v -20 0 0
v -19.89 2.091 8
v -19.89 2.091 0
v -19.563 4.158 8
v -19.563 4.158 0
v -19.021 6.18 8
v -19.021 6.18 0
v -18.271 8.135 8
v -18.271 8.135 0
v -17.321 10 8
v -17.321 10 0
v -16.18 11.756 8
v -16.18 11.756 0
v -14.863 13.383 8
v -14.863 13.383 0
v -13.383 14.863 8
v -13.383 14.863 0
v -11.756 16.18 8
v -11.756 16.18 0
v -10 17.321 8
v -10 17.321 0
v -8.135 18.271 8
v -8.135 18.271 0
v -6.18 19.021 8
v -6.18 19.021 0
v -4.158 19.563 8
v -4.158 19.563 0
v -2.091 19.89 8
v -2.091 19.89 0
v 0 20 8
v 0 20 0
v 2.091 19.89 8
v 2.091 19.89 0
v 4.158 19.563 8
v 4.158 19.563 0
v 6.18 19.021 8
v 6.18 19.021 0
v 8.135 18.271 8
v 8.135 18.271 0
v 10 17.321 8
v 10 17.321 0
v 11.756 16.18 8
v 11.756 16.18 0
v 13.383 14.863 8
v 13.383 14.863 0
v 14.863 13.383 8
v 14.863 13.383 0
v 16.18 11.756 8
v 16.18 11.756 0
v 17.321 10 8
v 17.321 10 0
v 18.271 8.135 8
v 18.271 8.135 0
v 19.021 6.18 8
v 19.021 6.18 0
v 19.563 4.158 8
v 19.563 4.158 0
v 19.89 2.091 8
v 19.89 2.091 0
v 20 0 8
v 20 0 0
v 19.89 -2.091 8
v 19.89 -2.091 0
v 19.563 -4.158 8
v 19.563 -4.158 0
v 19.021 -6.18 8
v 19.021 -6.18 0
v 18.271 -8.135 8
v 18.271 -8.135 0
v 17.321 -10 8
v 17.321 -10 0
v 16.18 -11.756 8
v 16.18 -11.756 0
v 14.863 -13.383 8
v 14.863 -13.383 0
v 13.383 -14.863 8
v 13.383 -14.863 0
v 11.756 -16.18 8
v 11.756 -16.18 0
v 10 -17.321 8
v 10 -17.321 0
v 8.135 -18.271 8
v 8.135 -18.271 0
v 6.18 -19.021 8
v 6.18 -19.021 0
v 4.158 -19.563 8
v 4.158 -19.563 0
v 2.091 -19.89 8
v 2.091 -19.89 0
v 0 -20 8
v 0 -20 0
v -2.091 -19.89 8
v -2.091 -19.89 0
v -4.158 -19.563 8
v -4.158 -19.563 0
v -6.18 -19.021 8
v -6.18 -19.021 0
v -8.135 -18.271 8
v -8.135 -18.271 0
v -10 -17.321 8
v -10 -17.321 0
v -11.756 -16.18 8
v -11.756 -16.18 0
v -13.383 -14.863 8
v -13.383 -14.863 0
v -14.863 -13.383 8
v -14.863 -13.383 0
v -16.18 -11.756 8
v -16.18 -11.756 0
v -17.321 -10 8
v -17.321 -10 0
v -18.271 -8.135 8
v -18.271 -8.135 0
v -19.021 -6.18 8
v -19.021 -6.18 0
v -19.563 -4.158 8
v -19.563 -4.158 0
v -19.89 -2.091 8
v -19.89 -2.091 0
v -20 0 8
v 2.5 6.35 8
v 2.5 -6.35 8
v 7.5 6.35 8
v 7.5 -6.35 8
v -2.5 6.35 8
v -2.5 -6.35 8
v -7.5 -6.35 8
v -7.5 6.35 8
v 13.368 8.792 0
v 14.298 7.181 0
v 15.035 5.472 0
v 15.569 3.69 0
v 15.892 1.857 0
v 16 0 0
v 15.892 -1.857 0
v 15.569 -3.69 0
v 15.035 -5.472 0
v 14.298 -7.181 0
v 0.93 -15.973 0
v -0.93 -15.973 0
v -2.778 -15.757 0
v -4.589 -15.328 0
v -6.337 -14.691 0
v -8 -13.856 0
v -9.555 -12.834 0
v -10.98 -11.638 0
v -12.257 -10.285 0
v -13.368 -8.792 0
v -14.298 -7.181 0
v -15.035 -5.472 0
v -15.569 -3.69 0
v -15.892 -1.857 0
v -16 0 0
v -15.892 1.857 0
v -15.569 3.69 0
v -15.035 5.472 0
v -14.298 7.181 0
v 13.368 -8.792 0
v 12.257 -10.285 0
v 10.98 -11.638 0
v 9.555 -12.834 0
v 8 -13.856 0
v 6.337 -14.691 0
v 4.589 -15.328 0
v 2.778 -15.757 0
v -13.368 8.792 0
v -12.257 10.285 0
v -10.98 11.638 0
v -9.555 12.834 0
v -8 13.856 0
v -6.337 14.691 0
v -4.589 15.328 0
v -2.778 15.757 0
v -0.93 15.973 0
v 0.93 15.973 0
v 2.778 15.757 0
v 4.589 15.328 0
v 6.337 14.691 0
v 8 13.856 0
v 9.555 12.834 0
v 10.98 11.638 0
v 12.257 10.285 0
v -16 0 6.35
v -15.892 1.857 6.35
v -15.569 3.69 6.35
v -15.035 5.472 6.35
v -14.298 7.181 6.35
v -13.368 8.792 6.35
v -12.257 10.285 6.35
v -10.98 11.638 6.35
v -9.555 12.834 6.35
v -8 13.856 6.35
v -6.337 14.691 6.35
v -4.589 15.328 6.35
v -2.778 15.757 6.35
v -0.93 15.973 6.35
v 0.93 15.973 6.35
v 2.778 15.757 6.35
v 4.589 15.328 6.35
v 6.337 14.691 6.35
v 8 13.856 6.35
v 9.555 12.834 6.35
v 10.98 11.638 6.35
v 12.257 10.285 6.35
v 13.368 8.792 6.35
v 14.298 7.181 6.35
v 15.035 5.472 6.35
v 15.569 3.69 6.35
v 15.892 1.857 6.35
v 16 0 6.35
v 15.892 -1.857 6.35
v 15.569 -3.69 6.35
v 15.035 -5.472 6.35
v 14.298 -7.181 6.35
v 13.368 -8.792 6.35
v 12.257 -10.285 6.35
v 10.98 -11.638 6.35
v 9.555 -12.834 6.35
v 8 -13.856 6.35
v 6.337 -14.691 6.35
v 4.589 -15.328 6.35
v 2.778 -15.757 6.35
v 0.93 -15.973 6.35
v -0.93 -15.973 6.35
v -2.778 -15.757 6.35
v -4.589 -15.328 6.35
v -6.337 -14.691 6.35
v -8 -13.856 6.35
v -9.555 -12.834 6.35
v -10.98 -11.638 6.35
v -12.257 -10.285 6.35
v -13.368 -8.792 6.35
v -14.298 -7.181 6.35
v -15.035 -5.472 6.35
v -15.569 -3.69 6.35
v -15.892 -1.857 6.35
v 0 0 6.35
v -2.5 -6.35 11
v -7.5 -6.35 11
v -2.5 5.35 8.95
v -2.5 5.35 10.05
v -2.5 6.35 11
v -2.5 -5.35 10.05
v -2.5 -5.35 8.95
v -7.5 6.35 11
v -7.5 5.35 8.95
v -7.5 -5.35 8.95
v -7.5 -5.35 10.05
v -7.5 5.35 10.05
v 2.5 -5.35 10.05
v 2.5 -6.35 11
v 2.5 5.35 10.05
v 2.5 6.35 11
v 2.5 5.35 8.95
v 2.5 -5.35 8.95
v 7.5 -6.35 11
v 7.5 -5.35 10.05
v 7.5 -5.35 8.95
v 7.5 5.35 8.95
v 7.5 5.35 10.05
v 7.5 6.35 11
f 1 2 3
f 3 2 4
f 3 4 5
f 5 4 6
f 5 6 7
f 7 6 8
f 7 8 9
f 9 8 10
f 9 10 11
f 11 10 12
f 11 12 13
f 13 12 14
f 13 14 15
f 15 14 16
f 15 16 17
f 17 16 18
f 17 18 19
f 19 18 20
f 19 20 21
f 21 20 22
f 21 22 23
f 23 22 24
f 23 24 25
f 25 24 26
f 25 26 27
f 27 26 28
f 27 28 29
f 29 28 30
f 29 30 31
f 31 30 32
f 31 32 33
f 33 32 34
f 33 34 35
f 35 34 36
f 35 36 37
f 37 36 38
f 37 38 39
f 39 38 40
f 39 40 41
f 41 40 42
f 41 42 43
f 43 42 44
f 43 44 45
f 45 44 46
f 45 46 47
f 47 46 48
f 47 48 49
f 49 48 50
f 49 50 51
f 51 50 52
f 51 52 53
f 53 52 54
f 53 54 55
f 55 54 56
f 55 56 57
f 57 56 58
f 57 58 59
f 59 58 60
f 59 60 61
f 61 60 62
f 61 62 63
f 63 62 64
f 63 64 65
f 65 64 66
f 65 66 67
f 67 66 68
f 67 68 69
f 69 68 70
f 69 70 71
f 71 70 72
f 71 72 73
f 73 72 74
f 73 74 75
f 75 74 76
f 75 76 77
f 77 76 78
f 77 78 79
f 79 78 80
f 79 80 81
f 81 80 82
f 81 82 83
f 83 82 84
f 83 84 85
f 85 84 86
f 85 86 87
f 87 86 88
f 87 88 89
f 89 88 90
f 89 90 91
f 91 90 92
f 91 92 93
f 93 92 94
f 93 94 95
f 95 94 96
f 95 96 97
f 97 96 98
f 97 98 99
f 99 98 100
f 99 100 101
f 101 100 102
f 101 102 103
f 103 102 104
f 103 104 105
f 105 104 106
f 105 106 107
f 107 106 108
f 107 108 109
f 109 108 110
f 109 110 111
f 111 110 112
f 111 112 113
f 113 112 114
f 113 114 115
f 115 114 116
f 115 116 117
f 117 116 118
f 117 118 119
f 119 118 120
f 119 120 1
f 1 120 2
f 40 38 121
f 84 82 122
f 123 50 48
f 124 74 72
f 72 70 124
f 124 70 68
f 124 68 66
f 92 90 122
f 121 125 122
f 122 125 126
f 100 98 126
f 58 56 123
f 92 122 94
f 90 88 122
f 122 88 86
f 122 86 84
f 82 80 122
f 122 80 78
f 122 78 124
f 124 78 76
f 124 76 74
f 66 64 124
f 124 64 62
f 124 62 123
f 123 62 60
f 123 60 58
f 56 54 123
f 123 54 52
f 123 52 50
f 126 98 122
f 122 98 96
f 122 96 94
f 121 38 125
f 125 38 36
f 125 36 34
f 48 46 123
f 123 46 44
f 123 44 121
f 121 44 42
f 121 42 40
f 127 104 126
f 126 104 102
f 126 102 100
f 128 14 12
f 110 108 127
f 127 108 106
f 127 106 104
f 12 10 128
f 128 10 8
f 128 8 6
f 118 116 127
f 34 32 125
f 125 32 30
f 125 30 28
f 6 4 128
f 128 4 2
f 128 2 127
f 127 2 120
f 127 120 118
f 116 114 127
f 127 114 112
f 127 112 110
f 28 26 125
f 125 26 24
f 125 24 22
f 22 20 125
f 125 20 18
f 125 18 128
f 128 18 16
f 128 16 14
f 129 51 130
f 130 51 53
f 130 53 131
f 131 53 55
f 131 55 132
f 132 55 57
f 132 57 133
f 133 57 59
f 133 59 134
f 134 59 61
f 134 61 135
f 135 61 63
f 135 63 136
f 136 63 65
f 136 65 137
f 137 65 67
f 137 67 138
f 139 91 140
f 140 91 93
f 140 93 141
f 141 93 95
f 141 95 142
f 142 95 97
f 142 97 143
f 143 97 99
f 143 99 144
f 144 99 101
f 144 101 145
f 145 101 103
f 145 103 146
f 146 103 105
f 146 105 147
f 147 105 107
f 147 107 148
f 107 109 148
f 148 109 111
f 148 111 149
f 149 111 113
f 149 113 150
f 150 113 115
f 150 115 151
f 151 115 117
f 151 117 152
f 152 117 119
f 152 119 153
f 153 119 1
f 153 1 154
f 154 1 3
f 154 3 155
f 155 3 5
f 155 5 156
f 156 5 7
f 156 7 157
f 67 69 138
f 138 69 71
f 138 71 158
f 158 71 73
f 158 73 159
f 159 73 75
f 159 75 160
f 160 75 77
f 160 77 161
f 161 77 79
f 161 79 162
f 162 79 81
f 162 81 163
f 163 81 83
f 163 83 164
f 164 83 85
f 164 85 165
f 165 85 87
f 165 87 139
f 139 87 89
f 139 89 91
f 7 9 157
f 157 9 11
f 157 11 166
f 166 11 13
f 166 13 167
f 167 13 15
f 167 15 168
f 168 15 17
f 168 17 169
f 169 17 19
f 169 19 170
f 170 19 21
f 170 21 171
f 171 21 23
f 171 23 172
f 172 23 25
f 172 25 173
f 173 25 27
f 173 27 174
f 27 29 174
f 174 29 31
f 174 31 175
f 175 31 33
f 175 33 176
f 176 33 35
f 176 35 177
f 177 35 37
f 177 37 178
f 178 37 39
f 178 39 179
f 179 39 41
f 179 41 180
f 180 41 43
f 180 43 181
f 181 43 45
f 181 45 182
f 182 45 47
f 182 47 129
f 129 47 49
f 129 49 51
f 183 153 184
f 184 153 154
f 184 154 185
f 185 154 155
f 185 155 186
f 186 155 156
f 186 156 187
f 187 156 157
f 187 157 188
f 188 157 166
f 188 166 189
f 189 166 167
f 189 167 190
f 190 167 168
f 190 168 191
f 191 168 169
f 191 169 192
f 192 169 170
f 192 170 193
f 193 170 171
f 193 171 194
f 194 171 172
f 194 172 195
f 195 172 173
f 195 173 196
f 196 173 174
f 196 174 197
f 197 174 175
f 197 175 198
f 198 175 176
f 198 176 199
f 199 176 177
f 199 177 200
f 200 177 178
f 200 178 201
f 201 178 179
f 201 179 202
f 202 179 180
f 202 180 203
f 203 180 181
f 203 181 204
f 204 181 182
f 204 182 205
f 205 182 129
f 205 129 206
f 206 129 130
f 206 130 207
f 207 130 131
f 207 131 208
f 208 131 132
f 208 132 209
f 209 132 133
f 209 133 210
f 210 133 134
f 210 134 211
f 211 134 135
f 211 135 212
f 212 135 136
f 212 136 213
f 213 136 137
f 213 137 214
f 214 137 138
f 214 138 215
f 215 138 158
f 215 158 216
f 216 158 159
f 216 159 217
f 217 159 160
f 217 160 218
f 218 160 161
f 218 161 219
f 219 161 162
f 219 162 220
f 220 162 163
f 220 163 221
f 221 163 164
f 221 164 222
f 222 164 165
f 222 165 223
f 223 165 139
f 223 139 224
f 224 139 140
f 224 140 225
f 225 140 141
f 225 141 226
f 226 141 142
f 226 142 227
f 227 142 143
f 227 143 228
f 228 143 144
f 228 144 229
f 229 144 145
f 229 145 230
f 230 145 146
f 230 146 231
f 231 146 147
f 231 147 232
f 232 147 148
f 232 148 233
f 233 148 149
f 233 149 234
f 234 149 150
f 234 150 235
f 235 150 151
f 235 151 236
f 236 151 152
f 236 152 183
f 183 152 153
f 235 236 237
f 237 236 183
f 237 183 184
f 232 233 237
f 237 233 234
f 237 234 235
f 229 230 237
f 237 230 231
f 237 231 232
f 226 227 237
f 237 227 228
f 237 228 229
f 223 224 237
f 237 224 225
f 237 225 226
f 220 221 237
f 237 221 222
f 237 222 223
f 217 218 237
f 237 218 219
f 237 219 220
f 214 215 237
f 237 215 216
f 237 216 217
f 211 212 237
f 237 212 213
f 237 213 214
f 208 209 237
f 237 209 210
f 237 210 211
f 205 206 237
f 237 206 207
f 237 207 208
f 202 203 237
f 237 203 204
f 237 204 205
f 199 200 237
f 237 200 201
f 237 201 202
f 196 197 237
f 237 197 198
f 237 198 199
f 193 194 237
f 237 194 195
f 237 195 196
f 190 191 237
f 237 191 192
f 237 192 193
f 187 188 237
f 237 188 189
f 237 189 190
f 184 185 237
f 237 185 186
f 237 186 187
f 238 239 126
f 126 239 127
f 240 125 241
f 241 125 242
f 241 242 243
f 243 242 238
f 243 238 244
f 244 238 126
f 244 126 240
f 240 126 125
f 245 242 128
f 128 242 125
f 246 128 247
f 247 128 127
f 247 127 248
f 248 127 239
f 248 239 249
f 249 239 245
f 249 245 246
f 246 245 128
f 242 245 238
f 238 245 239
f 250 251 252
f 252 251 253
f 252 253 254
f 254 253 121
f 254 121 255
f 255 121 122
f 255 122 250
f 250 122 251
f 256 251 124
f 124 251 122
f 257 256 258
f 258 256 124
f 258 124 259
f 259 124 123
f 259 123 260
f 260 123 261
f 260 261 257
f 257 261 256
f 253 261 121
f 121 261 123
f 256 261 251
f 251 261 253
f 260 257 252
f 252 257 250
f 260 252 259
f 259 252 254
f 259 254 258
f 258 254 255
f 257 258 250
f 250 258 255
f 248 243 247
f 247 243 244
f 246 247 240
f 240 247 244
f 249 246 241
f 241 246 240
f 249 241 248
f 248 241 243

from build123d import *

# Parameters (mm, degrees)
SKETCH1_R           = 20
BOSS_EXTRUDE1_DEPTH = 8
SKETCH2_R           = 16
CUT_EXTRUDE1_DEPTH  = 6.35
SKETCH3_W           = 5
SKETCH3_H           = 6.35
BOSS_EXTRUDE2_DEPTH = 3
CUT_EXTRUDE2_DEPTH  = 177.8


with BuildPart() as part:
    # Sketch1 → Boss-Extrude1 (new body)
    with BuildSketch(Plane.XY):
        Circle(SKETCH1_R)
    extrude(amount=BOSS_EXTRUDE1_DEPTH)

    # Sketch2 → Cut-Extrude1 (cut)
    with BuildSketch(Plane(origin=(0, 0, 0), x_dir=(-1, 0, 0), z_dir=(0, 0, -1))):
        Circle(SKETCH2_R)
    extrude(amount=-CUT_EXTRUDE1_DEPTH, mode=Mode.SUBTRACT)

    # Sketch3 → Boss-Extrude2 (add)
    with BuildSketch(Plane.XY.offset(8)):
        with Locations((-5, -3.175)):
            Rectangle(SKETCH3_W, SKETCH3_H)
        with Locations((-5, 3.175)):
            Rectangle(SKETCH3_W, SKETCH3_H)
        with Locations((5, 3.175)):
            Rectangle(SKETCH3_W, SKETCH3_H)
        with Locations((5, -3.175)):
            Rectangle(SKETCH3_W, SKETCH3_H)
    extrude(amount=BOSS_EXTRUDE2_DEPTH)

    # Sketch6 → Cut-Extrude2 (cut)
    with BuildSketch(Plane.ZY.offset(7.5)):
        Polygon((10.05, -5.35), (10.05, -2.328333333), (8.95, 2.328333333), (8.95, -5.35), align=None)
        Polygon((8.95, 2.328333333), (10.05, -2.328333333), (10.05, 5.35), (8.95, 5.35), align=None)
    extrude(amount=-CUT_EXTRUDE2_DEPTH, mode=Mode.SUBTRACT)


solid = part.part
